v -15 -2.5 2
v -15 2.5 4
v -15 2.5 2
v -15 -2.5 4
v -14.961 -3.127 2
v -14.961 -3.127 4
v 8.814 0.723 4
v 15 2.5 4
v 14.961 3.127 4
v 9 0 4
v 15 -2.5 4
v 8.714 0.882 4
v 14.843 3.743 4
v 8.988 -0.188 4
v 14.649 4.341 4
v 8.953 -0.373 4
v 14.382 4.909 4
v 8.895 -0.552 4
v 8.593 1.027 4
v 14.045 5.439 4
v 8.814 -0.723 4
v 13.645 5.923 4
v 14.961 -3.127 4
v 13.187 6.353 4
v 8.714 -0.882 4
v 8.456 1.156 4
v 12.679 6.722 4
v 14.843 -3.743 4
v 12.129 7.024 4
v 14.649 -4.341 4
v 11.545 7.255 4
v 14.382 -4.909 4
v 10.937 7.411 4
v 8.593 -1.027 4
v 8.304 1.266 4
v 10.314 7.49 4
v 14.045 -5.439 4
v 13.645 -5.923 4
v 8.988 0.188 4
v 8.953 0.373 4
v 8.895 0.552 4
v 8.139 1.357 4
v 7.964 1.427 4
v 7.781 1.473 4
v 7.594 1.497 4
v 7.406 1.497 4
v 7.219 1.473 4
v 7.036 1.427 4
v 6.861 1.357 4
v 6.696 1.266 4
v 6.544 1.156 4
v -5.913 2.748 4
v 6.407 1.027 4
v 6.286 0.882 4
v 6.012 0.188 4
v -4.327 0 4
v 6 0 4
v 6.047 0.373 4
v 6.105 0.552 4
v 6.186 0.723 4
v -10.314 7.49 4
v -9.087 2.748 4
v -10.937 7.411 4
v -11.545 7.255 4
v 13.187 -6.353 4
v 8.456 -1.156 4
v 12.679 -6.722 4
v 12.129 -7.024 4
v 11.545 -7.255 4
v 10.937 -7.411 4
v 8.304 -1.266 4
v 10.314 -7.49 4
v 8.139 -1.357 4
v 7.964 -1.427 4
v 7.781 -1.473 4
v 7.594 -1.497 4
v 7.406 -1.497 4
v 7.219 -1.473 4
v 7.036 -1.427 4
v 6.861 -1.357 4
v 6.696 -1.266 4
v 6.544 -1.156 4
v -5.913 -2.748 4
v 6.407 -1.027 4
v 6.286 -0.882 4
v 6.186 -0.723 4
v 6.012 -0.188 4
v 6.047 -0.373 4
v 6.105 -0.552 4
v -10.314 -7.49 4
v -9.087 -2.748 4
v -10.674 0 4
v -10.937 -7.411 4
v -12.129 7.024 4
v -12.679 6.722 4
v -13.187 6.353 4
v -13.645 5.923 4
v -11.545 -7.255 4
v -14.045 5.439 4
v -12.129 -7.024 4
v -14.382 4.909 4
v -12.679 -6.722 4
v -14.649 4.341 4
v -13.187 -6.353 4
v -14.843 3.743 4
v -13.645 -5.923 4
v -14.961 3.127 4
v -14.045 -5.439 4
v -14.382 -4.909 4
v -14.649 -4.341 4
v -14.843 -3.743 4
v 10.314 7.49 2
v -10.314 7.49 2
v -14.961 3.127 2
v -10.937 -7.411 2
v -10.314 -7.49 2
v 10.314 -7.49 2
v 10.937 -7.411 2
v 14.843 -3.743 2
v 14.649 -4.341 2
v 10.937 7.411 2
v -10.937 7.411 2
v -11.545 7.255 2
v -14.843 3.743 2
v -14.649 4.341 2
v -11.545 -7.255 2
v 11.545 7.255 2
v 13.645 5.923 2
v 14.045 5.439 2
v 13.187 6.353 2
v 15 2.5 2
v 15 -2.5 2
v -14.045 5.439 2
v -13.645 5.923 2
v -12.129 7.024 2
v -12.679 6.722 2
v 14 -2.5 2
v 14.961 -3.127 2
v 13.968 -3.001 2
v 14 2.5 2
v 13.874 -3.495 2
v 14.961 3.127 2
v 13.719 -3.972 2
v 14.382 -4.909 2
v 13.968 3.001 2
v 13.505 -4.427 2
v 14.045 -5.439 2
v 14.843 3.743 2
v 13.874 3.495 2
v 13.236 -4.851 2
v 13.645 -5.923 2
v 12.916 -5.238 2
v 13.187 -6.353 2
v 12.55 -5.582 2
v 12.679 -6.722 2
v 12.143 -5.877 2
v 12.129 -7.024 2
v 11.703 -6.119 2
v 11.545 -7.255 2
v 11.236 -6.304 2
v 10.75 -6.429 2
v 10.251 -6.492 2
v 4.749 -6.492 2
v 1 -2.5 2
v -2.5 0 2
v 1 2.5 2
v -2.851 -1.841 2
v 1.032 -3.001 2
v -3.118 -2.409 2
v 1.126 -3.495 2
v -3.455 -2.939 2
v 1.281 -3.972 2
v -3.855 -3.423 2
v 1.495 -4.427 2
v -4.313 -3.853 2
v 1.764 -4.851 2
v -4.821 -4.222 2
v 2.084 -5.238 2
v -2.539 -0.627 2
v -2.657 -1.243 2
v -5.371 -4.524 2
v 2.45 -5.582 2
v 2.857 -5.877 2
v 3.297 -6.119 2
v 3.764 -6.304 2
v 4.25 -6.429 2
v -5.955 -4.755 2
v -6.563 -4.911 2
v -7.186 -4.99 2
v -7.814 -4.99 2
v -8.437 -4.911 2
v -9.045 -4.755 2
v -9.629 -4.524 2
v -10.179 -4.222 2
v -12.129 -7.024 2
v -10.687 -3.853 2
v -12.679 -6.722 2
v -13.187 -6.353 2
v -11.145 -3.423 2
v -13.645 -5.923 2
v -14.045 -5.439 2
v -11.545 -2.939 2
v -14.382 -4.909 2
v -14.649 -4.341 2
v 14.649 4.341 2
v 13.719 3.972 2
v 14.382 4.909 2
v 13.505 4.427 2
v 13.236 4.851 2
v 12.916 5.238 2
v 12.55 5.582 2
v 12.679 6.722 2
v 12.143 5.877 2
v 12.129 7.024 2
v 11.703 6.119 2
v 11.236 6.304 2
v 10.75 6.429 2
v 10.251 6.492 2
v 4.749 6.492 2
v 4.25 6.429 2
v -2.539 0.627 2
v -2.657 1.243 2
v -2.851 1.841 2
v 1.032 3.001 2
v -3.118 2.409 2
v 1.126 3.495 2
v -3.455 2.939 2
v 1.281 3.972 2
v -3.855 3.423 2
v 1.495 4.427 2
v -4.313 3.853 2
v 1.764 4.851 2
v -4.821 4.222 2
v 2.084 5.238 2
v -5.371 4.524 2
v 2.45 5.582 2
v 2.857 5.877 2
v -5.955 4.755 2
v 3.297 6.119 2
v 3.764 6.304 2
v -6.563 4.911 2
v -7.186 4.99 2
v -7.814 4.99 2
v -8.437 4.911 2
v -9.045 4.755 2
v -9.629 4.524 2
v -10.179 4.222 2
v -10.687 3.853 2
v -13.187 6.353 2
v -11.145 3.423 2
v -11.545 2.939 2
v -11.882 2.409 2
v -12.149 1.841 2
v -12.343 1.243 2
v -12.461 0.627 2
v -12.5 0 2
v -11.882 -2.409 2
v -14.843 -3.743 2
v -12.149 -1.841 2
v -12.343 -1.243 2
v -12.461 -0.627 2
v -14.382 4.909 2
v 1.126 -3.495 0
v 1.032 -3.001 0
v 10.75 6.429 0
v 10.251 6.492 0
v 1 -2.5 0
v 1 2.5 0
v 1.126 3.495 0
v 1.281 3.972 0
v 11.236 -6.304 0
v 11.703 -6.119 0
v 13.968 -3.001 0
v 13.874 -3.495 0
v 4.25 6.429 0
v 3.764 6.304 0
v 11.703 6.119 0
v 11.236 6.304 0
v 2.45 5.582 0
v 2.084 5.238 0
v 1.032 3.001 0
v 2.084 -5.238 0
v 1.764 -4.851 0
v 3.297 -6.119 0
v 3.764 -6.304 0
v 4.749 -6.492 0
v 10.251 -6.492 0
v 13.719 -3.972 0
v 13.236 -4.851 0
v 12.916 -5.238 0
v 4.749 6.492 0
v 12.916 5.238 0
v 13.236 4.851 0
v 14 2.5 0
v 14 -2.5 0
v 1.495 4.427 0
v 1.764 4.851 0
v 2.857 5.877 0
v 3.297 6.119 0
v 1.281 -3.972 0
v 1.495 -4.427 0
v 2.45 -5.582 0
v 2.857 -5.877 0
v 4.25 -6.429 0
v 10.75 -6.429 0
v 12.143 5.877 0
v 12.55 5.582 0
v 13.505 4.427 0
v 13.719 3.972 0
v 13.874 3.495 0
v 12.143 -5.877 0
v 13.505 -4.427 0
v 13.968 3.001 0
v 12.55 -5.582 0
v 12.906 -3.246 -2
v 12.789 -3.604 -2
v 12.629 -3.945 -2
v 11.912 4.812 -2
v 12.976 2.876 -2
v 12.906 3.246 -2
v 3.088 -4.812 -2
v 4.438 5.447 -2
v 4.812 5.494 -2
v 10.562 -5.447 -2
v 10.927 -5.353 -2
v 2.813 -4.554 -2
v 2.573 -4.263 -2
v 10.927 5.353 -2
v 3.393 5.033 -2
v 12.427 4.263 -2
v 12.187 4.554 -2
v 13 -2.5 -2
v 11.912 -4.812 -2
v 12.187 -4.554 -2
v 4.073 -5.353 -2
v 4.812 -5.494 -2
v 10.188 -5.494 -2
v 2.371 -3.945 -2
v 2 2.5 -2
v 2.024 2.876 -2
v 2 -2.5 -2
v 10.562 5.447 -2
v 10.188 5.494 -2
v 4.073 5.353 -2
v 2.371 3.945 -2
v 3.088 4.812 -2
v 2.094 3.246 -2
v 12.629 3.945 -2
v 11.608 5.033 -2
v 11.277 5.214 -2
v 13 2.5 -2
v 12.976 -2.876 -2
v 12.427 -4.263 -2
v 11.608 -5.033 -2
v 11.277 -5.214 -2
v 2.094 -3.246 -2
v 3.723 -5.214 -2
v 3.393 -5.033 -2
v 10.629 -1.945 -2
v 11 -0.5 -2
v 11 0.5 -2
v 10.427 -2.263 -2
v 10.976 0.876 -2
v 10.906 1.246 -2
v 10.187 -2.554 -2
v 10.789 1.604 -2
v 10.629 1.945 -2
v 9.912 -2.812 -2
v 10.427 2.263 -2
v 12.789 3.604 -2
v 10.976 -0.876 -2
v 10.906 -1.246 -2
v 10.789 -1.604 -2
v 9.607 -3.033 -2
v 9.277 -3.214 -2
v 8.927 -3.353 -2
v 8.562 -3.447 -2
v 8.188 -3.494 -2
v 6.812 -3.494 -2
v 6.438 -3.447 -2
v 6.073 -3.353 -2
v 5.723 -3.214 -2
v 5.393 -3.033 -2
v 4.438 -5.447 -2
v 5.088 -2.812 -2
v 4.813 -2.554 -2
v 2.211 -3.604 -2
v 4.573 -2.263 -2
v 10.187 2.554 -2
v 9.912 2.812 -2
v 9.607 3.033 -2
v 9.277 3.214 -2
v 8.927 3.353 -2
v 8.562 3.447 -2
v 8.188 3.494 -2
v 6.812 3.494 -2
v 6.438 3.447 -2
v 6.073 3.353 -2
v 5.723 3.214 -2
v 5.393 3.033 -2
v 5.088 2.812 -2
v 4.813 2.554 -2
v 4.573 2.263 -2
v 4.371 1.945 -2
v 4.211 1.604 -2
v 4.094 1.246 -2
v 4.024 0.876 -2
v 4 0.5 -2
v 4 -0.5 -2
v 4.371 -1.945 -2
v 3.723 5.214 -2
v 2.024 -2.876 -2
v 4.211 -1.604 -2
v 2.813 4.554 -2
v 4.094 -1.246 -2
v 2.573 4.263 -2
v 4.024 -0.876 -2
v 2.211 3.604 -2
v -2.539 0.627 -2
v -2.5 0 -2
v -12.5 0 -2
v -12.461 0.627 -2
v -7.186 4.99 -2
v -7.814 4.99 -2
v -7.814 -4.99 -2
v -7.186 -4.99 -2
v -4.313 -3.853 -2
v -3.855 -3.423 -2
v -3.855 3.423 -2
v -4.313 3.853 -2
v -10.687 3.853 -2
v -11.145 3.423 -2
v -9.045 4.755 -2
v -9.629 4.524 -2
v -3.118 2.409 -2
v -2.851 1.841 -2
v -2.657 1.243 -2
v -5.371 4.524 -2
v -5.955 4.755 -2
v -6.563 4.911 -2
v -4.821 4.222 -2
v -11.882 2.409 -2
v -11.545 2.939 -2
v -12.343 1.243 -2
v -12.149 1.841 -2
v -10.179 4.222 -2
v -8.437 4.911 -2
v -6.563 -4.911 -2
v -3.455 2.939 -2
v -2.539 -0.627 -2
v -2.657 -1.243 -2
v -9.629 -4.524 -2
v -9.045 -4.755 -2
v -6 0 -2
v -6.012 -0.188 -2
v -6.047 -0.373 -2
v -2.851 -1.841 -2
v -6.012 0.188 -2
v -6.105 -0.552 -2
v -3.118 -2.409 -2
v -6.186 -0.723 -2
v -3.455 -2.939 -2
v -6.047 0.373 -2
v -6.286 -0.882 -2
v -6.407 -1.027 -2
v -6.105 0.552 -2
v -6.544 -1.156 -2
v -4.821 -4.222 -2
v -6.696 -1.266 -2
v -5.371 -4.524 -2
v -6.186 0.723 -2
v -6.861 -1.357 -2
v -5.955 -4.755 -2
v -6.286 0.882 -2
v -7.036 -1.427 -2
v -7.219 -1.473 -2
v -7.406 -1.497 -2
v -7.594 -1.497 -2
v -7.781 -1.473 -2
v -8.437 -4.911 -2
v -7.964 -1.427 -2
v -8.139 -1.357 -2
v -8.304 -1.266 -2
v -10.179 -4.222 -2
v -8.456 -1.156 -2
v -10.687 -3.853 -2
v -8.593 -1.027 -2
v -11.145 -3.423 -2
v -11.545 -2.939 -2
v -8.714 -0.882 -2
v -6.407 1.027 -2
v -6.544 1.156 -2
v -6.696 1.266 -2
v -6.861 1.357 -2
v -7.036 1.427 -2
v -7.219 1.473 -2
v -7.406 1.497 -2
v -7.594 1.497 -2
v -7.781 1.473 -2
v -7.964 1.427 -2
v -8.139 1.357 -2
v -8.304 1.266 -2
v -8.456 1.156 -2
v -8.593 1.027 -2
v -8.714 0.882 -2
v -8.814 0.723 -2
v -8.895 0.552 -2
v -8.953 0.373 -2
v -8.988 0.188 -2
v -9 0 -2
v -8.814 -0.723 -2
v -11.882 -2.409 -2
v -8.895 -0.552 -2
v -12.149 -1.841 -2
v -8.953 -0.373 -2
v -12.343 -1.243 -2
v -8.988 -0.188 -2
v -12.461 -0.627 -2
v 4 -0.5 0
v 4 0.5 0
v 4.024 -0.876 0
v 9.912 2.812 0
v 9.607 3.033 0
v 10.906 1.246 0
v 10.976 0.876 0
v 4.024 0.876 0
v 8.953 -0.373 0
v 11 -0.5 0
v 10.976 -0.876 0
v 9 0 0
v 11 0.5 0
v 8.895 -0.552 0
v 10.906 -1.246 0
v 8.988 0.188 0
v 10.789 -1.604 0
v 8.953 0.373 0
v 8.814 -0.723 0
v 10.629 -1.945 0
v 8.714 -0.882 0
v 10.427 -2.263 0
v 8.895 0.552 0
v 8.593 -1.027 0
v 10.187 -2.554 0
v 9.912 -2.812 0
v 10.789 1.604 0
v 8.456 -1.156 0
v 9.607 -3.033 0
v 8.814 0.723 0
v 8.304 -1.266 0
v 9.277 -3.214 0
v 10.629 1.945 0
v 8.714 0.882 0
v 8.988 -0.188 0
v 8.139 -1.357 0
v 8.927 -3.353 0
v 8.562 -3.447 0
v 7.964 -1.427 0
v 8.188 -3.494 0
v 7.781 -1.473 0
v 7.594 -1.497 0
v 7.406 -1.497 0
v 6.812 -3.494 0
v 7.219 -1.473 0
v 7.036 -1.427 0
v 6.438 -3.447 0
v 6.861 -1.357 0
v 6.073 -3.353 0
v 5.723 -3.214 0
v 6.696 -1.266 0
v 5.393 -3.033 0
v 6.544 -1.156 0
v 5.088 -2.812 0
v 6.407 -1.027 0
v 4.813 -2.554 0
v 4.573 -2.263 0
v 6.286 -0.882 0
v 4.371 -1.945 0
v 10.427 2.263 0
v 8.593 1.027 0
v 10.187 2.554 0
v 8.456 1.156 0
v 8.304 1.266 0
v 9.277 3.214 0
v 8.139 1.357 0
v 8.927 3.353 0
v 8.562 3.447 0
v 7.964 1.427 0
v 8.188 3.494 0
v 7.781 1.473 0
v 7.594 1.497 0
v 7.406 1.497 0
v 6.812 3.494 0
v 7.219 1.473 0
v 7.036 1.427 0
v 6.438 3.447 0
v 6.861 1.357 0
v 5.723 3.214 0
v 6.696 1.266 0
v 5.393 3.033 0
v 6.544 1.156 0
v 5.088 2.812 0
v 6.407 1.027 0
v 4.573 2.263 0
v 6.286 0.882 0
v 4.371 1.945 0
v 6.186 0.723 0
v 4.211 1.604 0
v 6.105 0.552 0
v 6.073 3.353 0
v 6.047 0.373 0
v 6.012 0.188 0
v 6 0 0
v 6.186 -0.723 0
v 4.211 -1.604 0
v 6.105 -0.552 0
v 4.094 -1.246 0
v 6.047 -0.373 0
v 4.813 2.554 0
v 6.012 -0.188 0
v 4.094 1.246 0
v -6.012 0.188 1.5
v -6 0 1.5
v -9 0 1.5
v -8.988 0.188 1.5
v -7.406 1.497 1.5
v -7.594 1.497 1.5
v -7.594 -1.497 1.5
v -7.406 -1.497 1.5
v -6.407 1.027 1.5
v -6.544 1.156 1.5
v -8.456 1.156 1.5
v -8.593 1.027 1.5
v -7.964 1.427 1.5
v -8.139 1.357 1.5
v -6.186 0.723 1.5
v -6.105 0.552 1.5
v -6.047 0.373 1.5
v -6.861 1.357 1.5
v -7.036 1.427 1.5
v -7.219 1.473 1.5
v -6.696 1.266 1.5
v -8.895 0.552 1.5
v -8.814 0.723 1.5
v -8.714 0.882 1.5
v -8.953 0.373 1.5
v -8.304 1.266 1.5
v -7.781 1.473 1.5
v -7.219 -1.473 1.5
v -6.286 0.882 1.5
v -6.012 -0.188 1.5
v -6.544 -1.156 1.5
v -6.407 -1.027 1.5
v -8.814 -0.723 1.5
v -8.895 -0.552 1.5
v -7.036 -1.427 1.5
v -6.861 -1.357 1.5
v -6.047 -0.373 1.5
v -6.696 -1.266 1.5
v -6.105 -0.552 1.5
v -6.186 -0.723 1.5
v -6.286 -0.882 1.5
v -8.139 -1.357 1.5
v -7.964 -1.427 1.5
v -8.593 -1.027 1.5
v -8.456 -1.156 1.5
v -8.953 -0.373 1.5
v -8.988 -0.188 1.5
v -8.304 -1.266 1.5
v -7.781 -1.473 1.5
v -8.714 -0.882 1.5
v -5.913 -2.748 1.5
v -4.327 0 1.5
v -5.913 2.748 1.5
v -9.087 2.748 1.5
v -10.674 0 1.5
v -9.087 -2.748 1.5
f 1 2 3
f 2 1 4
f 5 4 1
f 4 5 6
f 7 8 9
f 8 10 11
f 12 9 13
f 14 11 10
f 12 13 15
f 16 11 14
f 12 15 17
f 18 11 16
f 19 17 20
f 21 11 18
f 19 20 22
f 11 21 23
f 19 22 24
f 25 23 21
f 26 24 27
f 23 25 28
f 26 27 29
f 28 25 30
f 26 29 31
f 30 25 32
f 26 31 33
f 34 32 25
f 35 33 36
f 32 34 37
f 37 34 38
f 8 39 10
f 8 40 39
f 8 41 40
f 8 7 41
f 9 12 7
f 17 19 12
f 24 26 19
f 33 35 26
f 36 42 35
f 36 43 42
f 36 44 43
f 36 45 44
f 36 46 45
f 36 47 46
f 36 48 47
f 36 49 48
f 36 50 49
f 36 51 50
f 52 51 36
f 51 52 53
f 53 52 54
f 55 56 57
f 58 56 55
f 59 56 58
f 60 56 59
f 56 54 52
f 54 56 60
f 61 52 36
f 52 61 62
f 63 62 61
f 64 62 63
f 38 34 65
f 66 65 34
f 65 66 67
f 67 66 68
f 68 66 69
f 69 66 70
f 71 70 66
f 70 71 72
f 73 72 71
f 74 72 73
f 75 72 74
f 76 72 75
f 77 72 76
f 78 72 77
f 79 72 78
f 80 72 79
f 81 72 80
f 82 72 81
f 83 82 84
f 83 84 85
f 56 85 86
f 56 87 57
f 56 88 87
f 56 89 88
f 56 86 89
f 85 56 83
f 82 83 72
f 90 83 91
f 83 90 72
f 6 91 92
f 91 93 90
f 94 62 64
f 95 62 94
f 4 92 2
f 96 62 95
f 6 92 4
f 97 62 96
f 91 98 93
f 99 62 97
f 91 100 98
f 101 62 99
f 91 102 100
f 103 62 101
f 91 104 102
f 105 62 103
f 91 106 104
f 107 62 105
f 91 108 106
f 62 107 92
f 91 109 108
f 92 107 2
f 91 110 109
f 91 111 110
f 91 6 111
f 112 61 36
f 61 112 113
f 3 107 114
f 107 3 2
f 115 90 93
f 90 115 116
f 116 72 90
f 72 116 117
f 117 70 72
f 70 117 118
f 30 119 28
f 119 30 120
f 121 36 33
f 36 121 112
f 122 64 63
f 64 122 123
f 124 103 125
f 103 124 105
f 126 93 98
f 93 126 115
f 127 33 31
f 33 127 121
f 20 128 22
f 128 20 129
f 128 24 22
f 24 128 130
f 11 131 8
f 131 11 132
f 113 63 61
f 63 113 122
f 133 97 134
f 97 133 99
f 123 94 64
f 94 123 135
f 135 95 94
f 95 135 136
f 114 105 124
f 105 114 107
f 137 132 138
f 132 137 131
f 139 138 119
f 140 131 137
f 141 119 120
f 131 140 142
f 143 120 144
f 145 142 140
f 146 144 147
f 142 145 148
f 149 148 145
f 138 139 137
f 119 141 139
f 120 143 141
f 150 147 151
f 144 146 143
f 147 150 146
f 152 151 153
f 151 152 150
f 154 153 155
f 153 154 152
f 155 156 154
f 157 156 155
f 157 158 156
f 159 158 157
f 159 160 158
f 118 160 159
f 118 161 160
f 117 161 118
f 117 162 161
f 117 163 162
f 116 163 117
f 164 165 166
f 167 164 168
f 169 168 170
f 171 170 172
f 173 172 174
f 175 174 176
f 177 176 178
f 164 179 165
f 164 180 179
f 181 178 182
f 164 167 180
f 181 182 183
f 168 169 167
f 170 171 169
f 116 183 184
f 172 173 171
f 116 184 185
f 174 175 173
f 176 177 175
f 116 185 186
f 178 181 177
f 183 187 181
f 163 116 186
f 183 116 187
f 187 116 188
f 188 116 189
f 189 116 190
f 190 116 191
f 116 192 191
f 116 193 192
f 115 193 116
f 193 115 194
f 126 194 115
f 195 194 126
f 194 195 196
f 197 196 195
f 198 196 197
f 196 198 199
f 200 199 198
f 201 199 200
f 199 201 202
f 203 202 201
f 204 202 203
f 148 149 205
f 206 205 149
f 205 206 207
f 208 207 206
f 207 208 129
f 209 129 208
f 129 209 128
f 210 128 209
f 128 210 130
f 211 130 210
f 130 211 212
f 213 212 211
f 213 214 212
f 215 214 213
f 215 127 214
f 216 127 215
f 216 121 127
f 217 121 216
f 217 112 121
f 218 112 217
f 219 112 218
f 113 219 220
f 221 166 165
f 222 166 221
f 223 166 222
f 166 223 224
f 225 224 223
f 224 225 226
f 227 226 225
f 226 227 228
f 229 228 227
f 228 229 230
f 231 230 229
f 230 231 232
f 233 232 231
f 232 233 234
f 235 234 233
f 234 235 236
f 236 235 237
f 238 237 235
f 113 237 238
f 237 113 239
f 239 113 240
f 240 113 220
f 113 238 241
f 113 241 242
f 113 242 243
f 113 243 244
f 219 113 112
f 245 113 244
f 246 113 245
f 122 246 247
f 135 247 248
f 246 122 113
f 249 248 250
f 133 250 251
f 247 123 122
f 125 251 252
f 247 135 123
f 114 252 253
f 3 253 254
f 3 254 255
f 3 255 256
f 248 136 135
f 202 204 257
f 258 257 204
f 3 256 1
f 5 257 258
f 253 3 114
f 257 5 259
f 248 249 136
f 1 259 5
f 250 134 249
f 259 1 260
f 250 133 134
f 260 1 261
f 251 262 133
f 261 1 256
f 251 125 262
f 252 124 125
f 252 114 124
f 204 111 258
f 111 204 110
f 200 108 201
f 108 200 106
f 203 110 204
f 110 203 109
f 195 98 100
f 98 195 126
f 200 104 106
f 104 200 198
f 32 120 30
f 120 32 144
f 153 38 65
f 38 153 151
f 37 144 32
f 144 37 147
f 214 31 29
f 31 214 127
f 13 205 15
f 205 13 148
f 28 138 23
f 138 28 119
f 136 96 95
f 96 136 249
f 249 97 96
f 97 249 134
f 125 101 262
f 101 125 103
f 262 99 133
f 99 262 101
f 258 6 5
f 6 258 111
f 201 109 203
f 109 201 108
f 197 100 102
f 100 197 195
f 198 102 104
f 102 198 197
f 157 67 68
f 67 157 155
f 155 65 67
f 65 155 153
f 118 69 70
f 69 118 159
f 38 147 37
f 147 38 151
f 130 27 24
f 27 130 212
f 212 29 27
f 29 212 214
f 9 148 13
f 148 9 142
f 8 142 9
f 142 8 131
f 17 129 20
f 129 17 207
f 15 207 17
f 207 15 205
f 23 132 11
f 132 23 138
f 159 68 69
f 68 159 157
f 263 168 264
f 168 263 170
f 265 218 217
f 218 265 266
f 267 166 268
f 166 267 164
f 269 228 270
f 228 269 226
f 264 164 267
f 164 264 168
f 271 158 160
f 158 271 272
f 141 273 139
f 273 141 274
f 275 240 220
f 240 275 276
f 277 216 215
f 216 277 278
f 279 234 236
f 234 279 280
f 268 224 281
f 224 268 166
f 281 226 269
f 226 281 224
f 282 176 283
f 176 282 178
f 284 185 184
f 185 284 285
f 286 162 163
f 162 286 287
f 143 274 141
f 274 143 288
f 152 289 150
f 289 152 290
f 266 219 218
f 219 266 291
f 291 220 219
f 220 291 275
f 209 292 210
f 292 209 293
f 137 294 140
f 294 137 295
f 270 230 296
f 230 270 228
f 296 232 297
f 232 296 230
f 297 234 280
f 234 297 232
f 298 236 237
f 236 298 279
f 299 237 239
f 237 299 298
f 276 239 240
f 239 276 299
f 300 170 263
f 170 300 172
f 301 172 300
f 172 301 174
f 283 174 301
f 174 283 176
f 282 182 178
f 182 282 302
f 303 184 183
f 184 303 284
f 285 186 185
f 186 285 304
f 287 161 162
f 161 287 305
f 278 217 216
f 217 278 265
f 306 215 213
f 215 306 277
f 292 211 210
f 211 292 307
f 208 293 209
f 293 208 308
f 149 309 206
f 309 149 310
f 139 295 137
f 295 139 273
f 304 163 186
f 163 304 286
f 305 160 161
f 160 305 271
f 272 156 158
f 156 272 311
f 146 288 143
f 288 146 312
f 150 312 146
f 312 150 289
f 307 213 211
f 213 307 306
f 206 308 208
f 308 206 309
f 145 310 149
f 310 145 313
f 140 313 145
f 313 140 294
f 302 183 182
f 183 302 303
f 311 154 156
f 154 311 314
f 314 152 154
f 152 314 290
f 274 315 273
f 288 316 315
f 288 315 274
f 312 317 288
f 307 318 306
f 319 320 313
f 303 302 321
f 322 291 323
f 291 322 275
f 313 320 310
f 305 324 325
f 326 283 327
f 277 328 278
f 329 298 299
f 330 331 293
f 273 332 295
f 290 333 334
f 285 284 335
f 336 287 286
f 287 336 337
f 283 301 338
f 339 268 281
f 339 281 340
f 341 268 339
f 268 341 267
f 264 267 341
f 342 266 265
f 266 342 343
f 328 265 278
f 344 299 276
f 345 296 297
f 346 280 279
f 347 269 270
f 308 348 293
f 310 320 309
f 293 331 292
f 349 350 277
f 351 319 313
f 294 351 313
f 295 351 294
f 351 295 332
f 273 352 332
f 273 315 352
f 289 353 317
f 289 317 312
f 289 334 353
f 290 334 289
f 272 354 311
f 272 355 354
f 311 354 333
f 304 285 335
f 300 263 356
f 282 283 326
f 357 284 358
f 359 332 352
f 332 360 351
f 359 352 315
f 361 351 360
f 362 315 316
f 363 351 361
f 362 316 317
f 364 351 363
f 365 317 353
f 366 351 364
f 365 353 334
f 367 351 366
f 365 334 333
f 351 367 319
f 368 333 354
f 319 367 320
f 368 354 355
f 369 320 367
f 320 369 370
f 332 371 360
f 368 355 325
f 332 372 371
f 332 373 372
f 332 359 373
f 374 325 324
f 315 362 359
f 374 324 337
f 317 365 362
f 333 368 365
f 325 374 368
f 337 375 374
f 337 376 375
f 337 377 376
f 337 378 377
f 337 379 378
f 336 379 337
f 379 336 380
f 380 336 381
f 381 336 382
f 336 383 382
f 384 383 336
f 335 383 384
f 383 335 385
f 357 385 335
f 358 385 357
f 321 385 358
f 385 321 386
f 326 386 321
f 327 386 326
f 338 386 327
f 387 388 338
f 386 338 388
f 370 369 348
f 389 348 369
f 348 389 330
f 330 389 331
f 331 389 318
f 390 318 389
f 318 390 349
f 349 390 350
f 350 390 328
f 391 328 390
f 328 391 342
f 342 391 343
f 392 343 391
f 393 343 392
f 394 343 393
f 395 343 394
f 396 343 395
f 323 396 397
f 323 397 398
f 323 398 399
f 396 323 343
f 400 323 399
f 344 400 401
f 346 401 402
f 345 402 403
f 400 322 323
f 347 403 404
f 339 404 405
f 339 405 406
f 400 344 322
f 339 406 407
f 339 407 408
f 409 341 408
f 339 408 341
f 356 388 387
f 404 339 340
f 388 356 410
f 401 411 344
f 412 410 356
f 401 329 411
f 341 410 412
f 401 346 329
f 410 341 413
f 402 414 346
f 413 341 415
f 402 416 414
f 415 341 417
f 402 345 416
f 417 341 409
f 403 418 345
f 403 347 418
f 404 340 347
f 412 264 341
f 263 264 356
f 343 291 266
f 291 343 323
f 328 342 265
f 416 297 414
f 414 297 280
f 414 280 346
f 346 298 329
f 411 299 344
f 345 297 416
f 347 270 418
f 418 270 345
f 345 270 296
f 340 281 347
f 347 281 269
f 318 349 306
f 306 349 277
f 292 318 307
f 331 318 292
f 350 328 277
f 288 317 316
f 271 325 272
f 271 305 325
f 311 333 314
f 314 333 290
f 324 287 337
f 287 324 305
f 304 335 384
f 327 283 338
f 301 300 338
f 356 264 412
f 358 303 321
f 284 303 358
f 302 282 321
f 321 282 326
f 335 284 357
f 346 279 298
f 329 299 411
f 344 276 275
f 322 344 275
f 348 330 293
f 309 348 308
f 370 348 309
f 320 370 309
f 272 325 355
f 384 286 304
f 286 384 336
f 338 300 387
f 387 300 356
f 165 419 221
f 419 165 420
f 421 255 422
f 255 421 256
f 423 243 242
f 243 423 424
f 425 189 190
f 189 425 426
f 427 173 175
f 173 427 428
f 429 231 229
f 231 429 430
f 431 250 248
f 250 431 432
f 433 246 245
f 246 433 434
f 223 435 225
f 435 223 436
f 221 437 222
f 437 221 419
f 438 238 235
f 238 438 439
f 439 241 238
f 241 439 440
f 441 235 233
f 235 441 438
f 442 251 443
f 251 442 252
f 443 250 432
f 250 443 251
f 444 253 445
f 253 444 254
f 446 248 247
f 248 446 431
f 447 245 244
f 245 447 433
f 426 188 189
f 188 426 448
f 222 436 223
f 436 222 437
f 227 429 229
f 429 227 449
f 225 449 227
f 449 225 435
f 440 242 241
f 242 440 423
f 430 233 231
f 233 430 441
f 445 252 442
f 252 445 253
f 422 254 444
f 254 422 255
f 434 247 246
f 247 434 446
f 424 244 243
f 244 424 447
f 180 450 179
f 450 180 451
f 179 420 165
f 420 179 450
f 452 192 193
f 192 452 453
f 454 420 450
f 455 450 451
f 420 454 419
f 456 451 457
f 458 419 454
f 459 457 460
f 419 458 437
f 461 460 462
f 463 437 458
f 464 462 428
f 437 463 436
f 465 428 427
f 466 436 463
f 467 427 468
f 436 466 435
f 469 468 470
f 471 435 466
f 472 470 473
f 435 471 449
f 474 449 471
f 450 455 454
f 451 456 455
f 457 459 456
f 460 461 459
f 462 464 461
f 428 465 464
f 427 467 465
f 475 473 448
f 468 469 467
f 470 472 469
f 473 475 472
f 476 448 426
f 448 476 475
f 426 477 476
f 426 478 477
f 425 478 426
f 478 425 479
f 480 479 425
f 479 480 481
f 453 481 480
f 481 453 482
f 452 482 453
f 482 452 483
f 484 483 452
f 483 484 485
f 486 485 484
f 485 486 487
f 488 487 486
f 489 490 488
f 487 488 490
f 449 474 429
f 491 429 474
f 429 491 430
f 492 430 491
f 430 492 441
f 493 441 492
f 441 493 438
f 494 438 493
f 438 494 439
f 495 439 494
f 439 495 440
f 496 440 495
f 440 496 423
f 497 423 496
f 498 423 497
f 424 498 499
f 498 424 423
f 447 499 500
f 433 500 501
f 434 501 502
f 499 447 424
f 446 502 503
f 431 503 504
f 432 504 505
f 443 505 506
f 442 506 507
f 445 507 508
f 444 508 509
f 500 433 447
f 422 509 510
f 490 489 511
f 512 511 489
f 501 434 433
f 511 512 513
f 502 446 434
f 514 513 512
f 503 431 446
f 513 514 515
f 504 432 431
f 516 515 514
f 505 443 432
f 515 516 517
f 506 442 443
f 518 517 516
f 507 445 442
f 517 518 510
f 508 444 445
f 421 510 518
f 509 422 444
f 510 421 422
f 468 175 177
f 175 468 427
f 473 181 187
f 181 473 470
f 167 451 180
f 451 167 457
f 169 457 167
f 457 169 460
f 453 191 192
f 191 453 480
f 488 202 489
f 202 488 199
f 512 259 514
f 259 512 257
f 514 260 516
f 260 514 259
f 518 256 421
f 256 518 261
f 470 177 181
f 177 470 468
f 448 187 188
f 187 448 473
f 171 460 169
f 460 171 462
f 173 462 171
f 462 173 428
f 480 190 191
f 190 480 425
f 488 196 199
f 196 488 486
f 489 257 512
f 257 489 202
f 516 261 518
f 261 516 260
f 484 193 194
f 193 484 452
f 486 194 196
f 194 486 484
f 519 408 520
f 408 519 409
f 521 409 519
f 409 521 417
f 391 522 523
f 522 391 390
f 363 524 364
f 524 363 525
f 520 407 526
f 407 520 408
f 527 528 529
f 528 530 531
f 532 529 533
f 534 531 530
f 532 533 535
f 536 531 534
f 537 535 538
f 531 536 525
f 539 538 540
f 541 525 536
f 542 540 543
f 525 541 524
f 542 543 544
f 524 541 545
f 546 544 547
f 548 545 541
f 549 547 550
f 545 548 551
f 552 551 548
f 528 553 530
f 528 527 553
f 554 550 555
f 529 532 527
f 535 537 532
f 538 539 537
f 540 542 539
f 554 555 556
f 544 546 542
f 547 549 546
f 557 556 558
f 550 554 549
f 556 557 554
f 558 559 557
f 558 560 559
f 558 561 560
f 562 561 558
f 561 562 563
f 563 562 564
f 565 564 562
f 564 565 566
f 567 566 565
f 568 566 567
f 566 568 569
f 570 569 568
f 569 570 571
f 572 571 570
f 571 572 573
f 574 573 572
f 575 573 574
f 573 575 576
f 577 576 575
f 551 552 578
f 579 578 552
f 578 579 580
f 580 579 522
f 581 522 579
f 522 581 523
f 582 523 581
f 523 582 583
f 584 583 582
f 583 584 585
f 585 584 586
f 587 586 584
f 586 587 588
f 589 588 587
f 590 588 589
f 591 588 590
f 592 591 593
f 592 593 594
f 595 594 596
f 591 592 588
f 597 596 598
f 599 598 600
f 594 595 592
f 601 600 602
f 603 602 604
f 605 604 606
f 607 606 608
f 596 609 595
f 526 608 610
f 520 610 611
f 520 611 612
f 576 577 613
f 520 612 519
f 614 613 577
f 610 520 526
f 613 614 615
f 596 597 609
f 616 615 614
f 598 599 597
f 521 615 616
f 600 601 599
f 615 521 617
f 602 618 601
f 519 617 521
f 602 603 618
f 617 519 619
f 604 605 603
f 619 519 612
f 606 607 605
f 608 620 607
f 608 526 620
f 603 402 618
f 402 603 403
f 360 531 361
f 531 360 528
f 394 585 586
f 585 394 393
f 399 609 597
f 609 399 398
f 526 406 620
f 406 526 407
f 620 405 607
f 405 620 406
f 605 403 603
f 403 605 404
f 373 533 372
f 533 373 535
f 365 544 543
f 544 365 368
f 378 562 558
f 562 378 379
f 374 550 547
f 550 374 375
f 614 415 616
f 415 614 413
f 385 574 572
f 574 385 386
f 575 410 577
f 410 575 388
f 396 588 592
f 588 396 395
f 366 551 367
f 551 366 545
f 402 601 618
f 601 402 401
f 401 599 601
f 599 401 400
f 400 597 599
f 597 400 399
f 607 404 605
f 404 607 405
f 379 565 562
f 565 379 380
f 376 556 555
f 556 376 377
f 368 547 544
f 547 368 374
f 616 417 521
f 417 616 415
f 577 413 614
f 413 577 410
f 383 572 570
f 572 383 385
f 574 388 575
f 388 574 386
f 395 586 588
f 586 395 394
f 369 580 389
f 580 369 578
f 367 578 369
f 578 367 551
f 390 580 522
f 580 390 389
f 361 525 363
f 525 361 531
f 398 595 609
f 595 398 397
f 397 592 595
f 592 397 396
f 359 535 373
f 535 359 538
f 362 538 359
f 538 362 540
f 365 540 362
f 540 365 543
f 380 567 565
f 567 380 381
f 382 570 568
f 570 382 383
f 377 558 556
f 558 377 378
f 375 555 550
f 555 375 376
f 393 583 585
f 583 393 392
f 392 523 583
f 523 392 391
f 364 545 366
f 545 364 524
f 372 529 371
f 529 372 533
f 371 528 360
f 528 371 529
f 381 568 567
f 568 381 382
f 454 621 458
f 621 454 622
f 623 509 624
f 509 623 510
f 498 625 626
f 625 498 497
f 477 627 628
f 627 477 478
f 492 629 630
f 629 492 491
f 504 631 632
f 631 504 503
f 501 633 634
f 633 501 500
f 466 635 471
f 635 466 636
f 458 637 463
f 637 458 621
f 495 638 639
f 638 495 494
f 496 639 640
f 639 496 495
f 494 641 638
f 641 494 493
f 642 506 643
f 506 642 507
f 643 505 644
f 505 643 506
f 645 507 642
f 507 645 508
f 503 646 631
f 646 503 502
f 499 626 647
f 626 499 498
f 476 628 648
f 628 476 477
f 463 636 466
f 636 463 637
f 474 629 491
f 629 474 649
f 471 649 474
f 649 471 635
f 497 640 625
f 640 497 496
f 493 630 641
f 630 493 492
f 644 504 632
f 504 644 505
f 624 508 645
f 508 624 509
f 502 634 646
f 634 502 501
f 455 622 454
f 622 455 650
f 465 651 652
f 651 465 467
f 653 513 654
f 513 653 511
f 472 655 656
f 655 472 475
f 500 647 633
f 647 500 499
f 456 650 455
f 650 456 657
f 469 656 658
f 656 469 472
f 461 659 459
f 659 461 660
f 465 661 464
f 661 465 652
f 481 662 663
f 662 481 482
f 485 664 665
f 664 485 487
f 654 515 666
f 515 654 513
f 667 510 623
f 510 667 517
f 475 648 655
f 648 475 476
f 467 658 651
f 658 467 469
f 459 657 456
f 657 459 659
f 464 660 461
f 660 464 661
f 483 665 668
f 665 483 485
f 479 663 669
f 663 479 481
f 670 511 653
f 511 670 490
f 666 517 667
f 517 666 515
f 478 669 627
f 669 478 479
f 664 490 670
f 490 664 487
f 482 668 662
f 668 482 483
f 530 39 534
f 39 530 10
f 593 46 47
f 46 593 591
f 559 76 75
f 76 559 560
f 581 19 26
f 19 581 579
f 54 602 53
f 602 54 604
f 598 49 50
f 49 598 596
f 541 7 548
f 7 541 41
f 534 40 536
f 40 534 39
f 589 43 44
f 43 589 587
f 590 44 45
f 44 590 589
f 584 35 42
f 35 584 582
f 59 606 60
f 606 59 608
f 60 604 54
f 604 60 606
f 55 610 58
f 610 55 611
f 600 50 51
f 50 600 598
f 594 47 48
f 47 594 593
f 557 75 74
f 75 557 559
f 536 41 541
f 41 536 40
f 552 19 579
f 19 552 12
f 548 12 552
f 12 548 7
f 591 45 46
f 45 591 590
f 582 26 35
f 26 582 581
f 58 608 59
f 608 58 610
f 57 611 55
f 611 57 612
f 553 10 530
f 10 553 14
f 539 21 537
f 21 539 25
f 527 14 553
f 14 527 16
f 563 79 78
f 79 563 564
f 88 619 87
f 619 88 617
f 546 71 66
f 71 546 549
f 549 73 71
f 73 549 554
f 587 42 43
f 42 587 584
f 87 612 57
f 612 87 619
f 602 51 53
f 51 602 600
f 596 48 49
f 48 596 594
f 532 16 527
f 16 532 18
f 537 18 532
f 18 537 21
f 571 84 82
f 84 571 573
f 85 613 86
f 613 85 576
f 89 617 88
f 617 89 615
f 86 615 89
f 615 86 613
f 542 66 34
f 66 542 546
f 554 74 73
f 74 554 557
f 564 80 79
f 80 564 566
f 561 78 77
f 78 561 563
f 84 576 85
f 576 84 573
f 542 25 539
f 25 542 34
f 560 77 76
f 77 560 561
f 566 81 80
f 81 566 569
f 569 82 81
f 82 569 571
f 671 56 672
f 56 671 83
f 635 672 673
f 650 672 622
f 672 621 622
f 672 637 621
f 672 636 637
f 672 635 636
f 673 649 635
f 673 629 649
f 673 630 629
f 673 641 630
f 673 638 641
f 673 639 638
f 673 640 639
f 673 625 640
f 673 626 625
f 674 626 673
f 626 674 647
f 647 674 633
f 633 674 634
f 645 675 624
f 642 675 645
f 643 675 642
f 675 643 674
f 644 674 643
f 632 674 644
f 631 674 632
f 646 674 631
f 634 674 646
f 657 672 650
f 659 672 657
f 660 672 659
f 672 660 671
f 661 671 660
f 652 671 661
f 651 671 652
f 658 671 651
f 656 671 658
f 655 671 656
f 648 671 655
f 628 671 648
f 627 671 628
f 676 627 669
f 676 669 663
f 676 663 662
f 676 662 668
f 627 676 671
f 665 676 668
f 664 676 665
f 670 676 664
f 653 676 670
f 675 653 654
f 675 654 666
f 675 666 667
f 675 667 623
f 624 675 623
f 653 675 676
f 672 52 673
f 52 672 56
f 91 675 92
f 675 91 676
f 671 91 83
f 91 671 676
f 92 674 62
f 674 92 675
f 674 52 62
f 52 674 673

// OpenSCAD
$fn = 50;


difference() {
	union() {
		translate(v = [0, 0, 2]) {
			rotate(a = [0, 0, 0]) {
				hull() {
					translate(v = [-10.0000000000, 2.5000000000, 0]) {
						rotate(a = [0, 0, 0]) {
							translate(v = [0, 0, 0]) {
								rotate(a = [0, 0, 0]) {
									cylinder(h = 2, r = 5);
								}
							}
						}
					}
					translate(v = [10.0000000000, 2.5000000000, 0]) {
						rotate(a = [0, 0, 0]) {
							translate(v = [0, 0, 0]) {
								rotate(a = [0, 0, 0]) {
									cylinder(h = 2, r = 5);
								}
							}
						}
					}
					translate(v = [-10.0000000000, -2.5000000000, 0]) {
						rotate(a = [0, 0, 0]) {
							translate(v = [0, 0, 0]) {
								rotate(a = [0, 0, 0]) {
									cylinder(h = 2, r = 5);
								}
							}
						}
					}
					translate(v = [10.0000000000, -2.5000000000, 0]) {
						rotate(a = [0, 0, 0]) {
							translate(v = [0, 0, 0]) {
								rotate(a = [0, 0, 0]) {
									cylinder(h = 2, r = 5);
								}
							}
						}
					}
				}
			}
		}
		translate(v = [7.5000000000, 0.0000000000, 0]) {
			rotate(a = [0, 0, 0]) {
				hull() {
					translate(v = [-2.5000000000, 2.5000000000, 0]) {
						rotate(a = [0, 0, 0]) {
							cylinder(h = 2, r1 = 4.0000000000, r2 = 4.0000000000);
						}
					}
					translate(v = [2.5000000000, 2.5000000000, 0]) {
						rotate(a = [0, 0, 0]) {
							cylinder(h = 2, r1 = 4.0000000000, r2 = 4.0000000000);
						}
					}
					translate(v = [-2.5000000000, -2.5000000000, 0]) {
						rotate(a = [0, 0, 0]) {
							cylinder(h = 2, r1 = 4.0000000000, r2 = 4.0000000000);
						}
					}
					translate(v = [2.5000000000, -2.5000000000, 0]) {
						rotate(a = [0, 0, 0]) {
							cylinder(h = 2, r1 = 4.0000000000, r2 = 4.0000000000);
						}
					}
				}
			}
		}
		translate(v = [7.5000000000, 0.0000000000, -2]) {
			rotate(a = [0, 180, 0]) {
				hull() {
					translate(v = [-2.5000000000, 2.5000000000, 0]) {
						rotate(a = [0, 180, 0]) {
							cylinder(h = 2, r1 = 3.0000000000, r2 = 4.0000000000);
						}
					}
					translate(v = [2.5000000000, 2.5000000000, 0]) {
						rotate(a = [0, 180, 0]) {
							cylinder(h = 2, r1 = 3.0000000000, r2 = 4.0000000000);
						}
					}
					translate(v = [-2.5000000000, -2.5000000000, 0]) {
						rotate(a = [0, 180, 0]) {
							cylinder(h = 2, r1 = 3.0000000000, r2 = 4.0000000000);
						}
					}
					translate(v = [2.5000000000, -2.5000000000, 0]) {
						rotate(a = [0, 180, 0]) {
							cylinder(h = 2, r1 = 3.0000000000, r2 = 4.0000000000);
						}
					}
				}
			}
		}
		translate(v = [-7.5000000000, 0.0000000000, -2.0000000000]) {
			rotate(a = [0, 0, 0]) {
				cylinder(h = 4, r = 5);
			}
		}
	}
	union() {
		translate(v = [7.5000000000, 0.0000000000, -2]) {
			rotate(a = [0, 0, 0]) {
				hull() {
					translate(v = [-0.5000000000, 0.5000000000, 0]) {
						rotate(a = [0, 0, 0]) {
							translate(v = [0, 0, 0]) {
								rotate(a = [0, 0, 0]) {
									cylinder(h = 2, r = 3.0000000000);
								}
							}
						}
					}
					translate(v = [0.5000000000, 0.5000000000, 0]) {
						rotate(a = [0, 0, 0]) {
							translate(v = [0, 0, 0]) {
								rotate(a = [0, 0, 0]) {
									cylinder(h = 2, r = 3.0000000000);
								}
							}
						}
					}
					translate(v = [-0.5000000000, -0.5000000000, 0]) {
						rotate(a = [0, 0, 0]) {
							translate(v = [0, 0, 0]) {
								rotate(a = [0, 0, 0]) {
									cylinder(h = 2, r = 3.0000000000);
								}
							}
						}
					}
					translate(v = [0.5000000000, -0.5000000000, 0]) {
						rotate(a = [0, 0, 0]) {
							translate(v = [0, 0, 0]) {
								rotate(a = [0, 0, 0]) {
									cylinder(h = 2, r = 3.0000000000);
								}
							}
						}
					}
				}
			}
		}
		translate(v = [-7.5000000000, 0.0000000000, -50]) {
			rotate(a = [0, 0, 0]) {
				cylinder(h = 100, r = 1.5000000000);
			}
		}
		translate(v = [7.5000000000, 0.0000000000, -50]) {
			rotate(a = [0, 0, 0]) {
				cylinder(h = 100, r = 1.5000000000);
			}
		}
		translate(v = [-7.5000000000, 0.0000000000, -50]) {
			rotate(a = [0, 0, 0]) {
				cylinder(h = 100, r = 1.5000000000);
			}
		}
		translate(v = [7.5000000000, 0.0000000000, -50]) {
			rotate(a = [0, 0, 0]) {
				cylinder(h = 100, r = 1.5000000000);
			}
		}
		translate(v = [-7.5000000000, 0.0000000000, 1.5000000000]) {
			rotate(a = [0, 0, 0]) {
				#translate(v = [0, 0, 0]) {
					rotate(a = [0, 0, 0]) {
						linear_extrude(height = 2.5000000000) {
							polygon(points = [[3.1735000000, 0.0000000000], [1.5867500000, 2.7483316189], [-1.5867500000, 2.7483316189], [-3.1735000000, 0.0000000000], [-1.5867500000, -2.7483316189], [1.5867500000, -2.7483316189]]);
						}
					}
				}
			}
		}
	}
}
